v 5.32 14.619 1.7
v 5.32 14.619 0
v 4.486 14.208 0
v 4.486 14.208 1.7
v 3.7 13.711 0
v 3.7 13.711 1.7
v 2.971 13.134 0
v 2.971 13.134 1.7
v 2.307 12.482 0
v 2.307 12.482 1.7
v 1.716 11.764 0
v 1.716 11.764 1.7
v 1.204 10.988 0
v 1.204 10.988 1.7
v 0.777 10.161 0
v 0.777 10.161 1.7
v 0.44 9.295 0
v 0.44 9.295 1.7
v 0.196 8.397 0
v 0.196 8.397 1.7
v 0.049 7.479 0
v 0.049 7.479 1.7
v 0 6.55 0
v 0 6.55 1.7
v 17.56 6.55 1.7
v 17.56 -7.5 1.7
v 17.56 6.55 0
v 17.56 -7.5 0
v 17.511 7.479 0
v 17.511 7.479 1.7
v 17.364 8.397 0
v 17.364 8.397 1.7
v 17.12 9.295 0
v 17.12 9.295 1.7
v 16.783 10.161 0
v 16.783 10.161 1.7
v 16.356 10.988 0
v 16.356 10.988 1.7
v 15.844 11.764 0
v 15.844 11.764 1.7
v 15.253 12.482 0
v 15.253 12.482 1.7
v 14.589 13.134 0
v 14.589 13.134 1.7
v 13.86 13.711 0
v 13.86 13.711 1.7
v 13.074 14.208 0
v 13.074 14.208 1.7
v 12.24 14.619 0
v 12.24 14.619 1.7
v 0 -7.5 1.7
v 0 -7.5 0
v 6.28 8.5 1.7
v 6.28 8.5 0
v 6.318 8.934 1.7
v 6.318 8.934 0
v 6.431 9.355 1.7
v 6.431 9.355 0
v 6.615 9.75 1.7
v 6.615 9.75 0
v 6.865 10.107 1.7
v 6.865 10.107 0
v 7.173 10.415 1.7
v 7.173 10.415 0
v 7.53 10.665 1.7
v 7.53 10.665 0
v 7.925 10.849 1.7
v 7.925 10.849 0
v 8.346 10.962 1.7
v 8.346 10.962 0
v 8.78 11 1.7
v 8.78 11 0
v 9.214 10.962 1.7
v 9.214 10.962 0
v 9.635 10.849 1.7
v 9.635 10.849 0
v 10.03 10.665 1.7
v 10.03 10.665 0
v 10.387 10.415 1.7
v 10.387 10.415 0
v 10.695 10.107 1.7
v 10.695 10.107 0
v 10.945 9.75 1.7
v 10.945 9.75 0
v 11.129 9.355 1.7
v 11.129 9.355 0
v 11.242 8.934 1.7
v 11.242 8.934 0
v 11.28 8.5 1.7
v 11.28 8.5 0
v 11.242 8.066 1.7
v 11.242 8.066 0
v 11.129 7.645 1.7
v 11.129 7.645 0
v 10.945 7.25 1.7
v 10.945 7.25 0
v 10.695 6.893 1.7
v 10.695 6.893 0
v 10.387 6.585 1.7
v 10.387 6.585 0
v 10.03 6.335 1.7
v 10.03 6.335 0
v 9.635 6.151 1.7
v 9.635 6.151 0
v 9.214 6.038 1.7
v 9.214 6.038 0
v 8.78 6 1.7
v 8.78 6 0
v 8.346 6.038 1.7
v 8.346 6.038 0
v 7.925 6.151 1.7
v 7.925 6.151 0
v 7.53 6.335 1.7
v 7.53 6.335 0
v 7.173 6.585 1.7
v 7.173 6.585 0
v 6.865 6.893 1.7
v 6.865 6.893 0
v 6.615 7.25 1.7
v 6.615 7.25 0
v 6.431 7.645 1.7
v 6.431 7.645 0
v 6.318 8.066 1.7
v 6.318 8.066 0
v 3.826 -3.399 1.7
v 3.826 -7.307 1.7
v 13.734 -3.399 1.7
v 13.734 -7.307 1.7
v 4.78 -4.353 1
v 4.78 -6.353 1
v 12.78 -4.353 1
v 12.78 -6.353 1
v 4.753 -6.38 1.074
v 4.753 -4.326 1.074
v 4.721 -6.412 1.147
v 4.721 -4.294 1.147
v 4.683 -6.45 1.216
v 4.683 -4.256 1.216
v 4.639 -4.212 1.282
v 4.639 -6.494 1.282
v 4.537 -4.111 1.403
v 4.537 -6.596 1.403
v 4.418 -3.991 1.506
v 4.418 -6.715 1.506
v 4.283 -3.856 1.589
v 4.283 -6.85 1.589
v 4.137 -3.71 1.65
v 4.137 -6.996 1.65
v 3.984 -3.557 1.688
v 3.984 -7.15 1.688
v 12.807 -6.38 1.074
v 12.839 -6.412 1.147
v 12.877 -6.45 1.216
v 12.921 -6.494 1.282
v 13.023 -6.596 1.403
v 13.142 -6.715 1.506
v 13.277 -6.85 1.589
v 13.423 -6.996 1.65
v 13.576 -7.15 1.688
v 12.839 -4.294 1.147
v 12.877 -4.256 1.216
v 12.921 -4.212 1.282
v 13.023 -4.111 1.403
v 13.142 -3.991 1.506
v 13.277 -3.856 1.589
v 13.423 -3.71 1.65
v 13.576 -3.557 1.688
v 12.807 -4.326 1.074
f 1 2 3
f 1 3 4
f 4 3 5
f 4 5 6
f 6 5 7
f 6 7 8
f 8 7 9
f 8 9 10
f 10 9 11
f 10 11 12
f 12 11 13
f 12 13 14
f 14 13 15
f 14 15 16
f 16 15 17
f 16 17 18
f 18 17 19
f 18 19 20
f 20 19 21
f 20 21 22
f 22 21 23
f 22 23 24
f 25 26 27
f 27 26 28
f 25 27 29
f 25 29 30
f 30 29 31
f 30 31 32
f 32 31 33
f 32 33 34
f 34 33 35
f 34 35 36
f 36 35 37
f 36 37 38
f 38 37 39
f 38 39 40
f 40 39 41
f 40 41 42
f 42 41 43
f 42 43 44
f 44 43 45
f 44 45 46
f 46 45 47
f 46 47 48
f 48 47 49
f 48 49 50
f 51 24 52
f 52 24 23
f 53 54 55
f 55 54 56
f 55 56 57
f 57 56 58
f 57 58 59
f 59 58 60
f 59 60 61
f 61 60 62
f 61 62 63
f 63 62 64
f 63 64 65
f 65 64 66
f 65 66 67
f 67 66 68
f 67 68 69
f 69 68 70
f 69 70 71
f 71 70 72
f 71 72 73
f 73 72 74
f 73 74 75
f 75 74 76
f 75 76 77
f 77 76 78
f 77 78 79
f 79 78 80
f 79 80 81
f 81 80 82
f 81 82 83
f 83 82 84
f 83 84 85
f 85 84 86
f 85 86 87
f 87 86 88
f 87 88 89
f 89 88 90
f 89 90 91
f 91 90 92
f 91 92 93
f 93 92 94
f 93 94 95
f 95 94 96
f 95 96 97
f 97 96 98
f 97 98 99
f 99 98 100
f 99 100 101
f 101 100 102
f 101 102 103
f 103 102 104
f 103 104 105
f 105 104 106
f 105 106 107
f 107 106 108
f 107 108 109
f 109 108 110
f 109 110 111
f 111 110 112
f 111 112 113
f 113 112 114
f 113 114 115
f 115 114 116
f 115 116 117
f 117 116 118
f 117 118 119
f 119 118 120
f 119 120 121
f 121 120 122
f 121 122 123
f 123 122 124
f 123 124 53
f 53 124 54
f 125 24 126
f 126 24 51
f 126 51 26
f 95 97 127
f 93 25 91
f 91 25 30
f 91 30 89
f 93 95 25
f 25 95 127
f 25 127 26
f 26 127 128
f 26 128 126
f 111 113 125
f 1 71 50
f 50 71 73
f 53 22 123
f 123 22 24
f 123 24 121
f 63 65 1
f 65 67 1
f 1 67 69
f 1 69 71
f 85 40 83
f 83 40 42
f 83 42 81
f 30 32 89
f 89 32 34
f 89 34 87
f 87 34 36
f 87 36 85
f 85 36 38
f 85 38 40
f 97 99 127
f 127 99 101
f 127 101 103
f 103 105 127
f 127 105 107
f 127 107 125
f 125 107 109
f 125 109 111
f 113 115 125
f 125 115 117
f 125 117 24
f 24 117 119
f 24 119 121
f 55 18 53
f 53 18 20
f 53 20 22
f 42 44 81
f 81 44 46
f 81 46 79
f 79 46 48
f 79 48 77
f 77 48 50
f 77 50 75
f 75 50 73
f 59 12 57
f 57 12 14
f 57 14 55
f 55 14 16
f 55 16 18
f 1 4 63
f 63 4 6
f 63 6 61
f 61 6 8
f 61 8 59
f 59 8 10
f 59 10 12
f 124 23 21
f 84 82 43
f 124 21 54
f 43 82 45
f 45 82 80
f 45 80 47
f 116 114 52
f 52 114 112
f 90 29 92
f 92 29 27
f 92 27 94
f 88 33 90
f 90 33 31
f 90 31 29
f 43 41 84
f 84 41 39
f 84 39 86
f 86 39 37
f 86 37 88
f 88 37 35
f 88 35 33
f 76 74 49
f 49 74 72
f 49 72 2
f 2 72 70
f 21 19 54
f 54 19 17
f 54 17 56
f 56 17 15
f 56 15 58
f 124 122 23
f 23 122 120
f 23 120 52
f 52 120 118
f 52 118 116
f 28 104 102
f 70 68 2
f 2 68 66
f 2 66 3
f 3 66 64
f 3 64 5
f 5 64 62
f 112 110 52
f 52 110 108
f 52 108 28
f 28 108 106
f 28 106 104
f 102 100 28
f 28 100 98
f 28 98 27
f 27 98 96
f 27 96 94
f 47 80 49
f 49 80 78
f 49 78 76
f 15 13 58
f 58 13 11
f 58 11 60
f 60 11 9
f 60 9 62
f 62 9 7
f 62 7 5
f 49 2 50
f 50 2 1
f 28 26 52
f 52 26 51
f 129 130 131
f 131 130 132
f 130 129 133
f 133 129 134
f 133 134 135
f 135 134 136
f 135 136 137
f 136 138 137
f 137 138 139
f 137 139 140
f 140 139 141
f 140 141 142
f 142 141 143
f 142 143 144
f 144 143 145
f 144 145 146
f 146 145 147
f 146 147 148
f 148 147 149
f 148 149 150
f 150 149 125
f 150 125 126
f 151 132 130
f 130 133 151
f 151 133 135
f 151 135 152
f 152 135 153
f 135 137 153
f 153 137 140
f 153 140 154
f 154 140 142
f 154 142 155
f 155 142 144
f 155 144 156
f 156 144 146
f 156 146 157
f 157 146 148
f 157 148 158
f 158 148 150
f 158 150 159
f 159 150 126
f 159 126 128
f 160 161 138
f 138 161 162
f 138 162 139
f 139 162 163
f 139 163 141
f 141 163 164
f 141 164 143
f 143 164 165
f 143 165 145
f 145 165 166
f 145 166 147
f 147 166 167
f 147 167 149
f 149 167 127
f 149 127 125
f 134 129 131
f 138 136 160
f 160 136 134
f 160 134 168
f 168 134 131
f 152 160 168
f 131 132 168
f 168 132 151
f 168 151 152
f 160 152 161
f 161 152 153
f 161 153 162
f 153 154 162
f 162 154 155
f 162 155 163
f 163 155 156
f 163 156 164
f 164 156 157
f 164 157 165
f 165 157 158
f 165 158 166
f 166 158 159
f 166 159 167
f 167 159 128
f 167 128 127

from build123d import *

# Parameters (mm, degrees)
SKETCH1_R           = 2.5
BOSS_EXTRUDE1_DEPTH = 1.7
CUT_EXTRUDE4_DEPTH  = 24.372045268
SKETCH6_W           = 17.56
SKETCH6_H           = 1.7
BOSS_EXTRUDE4_DEPTH = 7.5
SKETCH9_W           = 8
SKETCH9_H           = 2
CUT_EXTRUDE2_DEPTH  = 0.7
FILLET1_R           = 1


with BuildPart() as part:
    # Sketch1 → Boss-Extrude1 (new body)
    with BuildSketch(Plane.XY):
        with BuildLine():
            Line((0, 0), (17.56, 0))
            Line((17.56, 0), (17.56, 6.55))
            ThreePointArc((17.56, 6.55), (8.78, 15.33), (0, 6.55))
            Line((0, 6.55), (0, 0))
        make_face()
        with Locations((8.78, 8.5)):
            Circle(SKETCH1_R, mode=Mode.SUBTRACT)
    extrude(amount=BOSS_EXTRUDE1_DEPTH)

    # Sketch3 → Cut-Extrude4 (cut, through all)
    with BuildSketch(Plane.XY.offset(1.7)):
        with BuildLine():
            ThreePointArc((12.24, 14.619498126), (8.78, 15.33), (5.32, 14.619498126))
            Line((5.32, 14.619498126), (12.24, 14.619498126))
        make_face()
    extrude(amount=-CUT_EXTRUDE4_DEPTH, mode=Mode.SUBTRACT)

    # Sketch6 → Boss-Extrude4 (add)
    with BuildSketch(Plane.XZ):
        with Locations((8.78, 0.85)):
            Rectangle(SKETCH6_W, SKETCH6_H)
    extrude(amount=BOSS_EXTRUDE4_DEPTH)

    # Sketch9 → Cut-Extrude2 (cut)
    with BuildSketch(Plane.XY.offset(1.7)):
        with Locations((8.78, -5.353166831)):
            Rectangle(SKETCH9_W, SKETCH9_H)
    extrude(amount=-CUT_EXTRUDE2_DEPTH, mode=Mode.SUBTRACT)

    # Fillet1
    # the kernel refuses this fillet: 1 mm, written as the material it takes off along each edge
    with BuildSketch(Plane(origin=(12.78, -4.353166831, 1.7), x_dir=(1, 0, 0), z_dir=(0, -1, 0)), Plane(origin=(4.78, -6.353166831, 1.7), x_dir=(-1, 0, 0), z_dir=(0, 1, 0))) as fillet1_piece_1:
        with BuildLine():
            CenterArc((0.953939201, -1), FILLET1_R, 90, 72.542396876)
            Line((0, -0.7), (-0.019078784, -0.694))
            ThreePointArc((-0.019078784, -0.694), (-0.02, -0.35), (-0.02, 0))
            Line((-0.02, 0), (0, 0.02))
            Line((0, 0.02), (0.953939201, 0.02))
            Line((0.953939201, 0.02), (0.953939201, 0))
        make_face()
    extrude(amount=2, mode=Mode.SUBTRACT)
    with BuildSketch(Plane(origin=(12.78, -6.353166831, 1.7), x_dir=(0, -1, 0), z_dir=(-1, 0, 0)), Plane(origin=(4.78, -4.353166831, 1.7), x_dir=(0, 1, 0), z_dir=(1, 0, 0))) as fillet1_piece_2:
        with BuildLine():
            CenterArc((0.953939201, -1), FILLET1_R, 90, 72.542396876)
            Line((0, -0.7), (-0.019078784, -0.694))
            ThreePointArc((-0.019078784, -0.694), (-0.02, -0.35), (-0.02, 0))
            Line((-0.02, 0), (0, 0.02))
            Line((0, 0.02), (0.953939201, 0.02))
            Line((0.953939201, 0.02), (0.953939201, 0))
        make_face()
    extrude(amount=8, mode=Mode.SUBTRACT)
    with BuildSketch(Plane(origin=(12.78, -1.968318828, 1.7), x_dir=(1, 0, 0), z_dir=(0, -1, 0))) as fillet1_piece_3a_section:
        with BuildLine():
            CenterArc((0.953939201, -1), FILLET1_R, 90, 72.542396876)
            Line((0, -0.7), (-0.019078784, -0.694))
            ThreePointArc((-0.019078784, -0.694), (-0.02, -0.35), (-0.02, 0))
            Line((-0.02, 0), (0, 0.02))
            Line((0, 0.02), (0.953939201, 0.02))
            Line((0.953939201, 0.02), (0.953939201, 0))
        make_face()
    fillet1_piece_3a = extrude(amount=4.384848004, mode=Mode.PRIVATE)
    fillet1_piece_3a = split(fillet1_piece_3a, bisect_by=Plane(origin=(13.007122588, -4.353166831, 1.5212182), z_dir=(0, 1, 0)), keep=Keep.TOP, mode=Mode.PRIVATE)
    with BuildSketch(Plane(origin=(4.78, -4.353166831, 1.7), x_dir=(0, 1, 0), z_dir=(1, 0, 0))) as fillet1_piece_3b_section:
        with BuildLine():
            CenterArc((0.953939201, -1), FILLET1_R, 90, 72.542396876)
            Line((0, -0.7), (-0.019078784, -0.694))
            ThreePointArc((-0.019078784, -0.694), (-0.02, -0.35), (-0.02, 0))
            Line((-0.02, 0), (0, 0.02))
            Line((0, 0.02), (0.953939201, 0.02))
            Line((0.953939201, 0.02), (0.953939201, 0))
        make_face()
    fillet1_piece_3b = extrude(amount=10.384848004, mode=Mode.PRIVATE)
    fillet1_piece_3b = split(fillet1_piece_3b, bisect_by=Plane(origin=(12.78, -4.126044244, 1.5212182), z_dir=(1, 0, 0)), keep=Keep.TOP, mode=Mode.PRIVATE)
    fillet1_piece_3 = fillet1_piece_3a & fillet1_piece_3b
    add(fillet1_piece_3, mode=Mode.SUBTRACT)
    with BuildSketch(Plane(origin=(12.78, -4.353166831, 1.7), x_dir=(1, 0, 0), z_dir=(0, -1, 0))) as fillet1_piece_4a_section:
        with BuildLine():
            CenterArc((0.953939201, -1), FILLET1_R, 90, 72.542396876)
            Line((0, -0.7), (-0.019078784, -0.694))
            ThreePointArc((-0.019078784, -0.694), (-0.02, -0.35), (-0.02, 0))
            Line((-0.02, 0), (0, 0.02))
            Line((0, 0.02), (0.953939201, 0.02))
            Line((0.953939201, 0.02), (0.953939201, 0))
        make_face()
    fillet1_piece_4a = extrude(amount=4.384848004, mode=Mode.PRIVATE)
    fillet1_piece_4a = split(fillet1_piece_4a, bisect_by=Plane(origin=(13.007122588, -6.353166831, 1.5212182), z_dir=(0, -1, 0)), keep=Keep.TOP, mode=Mode.PRIVATE)
    with BuildSketch(Plane(origin=(15.164848004, -6.353166831, 1.7), x_dir=(0, -1, 0), z_dir=(-1, 0, 0))) as fillet1_piece_4b_section:
        with BuildLine():
            CenterArc((0.953939201, -1), FILLET1_R, 90, 72.542396876)
            Line((0, -0.7), (-0.019078784, -0.694))
            ThreePointArc((-0.019078784, -0.694), (-0.02, -0.35), (-0.02, 0))
            Line((-0.02, 0), (0, 0.02))
            Line((0, 0.02), (0.953939201, 0.02))
            Line((0.953939201, 0.02), (0.953939201, 0))
        make_face()
    fillet1_piece_4b = extrude(amount=10.384848004, mode=Mode.PRIVATE)
    fillet1_piece_4b = split(fillet1_piece_4b, bisect_by=Plane(origin=(12.78, -6.580289419, 1.5212182), z_dir=(1, 0, 0)), keep=Keep.TOP, mode=Mode.PRIVATE)
    fillet1_piece_4 = fillet1_piece_4a & fillet1_piece_4b
    add(fillet1_piece_4, mode=Mode.SUBTRACT)
    with BuildSketch(Plane(origin=(4.78, -8.738014835, 1.7), x_dir=(-1, 0, 0), z_dir=(0, 1, 0))) as fillet1_piece_5a_section:
        with BuildLine():
            CenterArc((0.953939201, -1), FILLET1_R, 90, 72.542396876)
            Line((0, -0.7), (-0.019078784, -0.694))
            ThreePointArc((-0.019078784, -0.694), (-0.02, -0.35), (-0.02, 0))
            Line((-0.02, 0), (0, 0.02))
            Line((0, 0.02), (0.953939201, 0.02))
            Line((0.953939201, 0.02), (0.953939201, 0))
        make_face()
    fillet1_piece_5a = extrude(amount=4.384848004, mode=Mode.PRIVATE)
    fillet1_piece_5a = split(fillet1_piece_5a, bisect_by=Plane(origin=(4.552877412, -6.353166831, 1.5212182), z_dir=(0, -1, 0)), keep=Keep.TOP, mode=Mode.PRIVATE)
    with BuildSketch(Plane(origin=(12.78, -6.353166831, 1.7), x_dir=(0, -1, 0), z_dir=(-1, 0, 0))) as fillet1_piece_5b_section:
        with BuildLine():
            CenterArc((0.953939201, -1), FILLET1_R, 90, 72.542396876)
            Line((0, -0.7), (-0.019078784, -0.694))
            ThreePointArc((-0.019078784, -0.694), (-0.02, -0.35), (-0.02, 0))
            Line((-0.02, 0), (0, 0.02))
            Line((0, 0.02), (0.953939201, 0.02))
            Line((0.953939201, 0.02), (0.953939201, 0))
        make_face()
    fillet1_piece_5b = extrude(amount=10.384848004, mode=Mode.PRIVATE)
    fillet1_piece_5b = split(fillet1_piece_5b, bisect_by=Plane(origin=(4.78, -6.580289419, 1.5212182), z_dir=(-1, 0, 0)), keep=Keep.TOP, mode=Mode.PRIVATE)
    fillet1_piece_5 = fillet1_piece_5a & fillet1_piece_5b
    add(fillet1_piece_5, mode=Mode.SUBTRACT)
    with BuildSketch(Plane(origin=(2.395151996, -4.353166831, 1.7), x_dir=(0, 1, 0), z_dir=(1, 0, 0))) as fillet1_piece_6a_section:
        with BuildLine():
            CenterArc((0.953939201, -1), FILLET1_R, 90, 72.542396876)
            Line((0, -0.7), (-0.019078784, -0.694))
            ThreePointArc((-0.019078784, -0.694), (-0.02, -0.35), (-0.02, 0))
            Line((-0.02, 0), (0, 0.02))
            Line((0, 0.02), (0.953939201, 0.02))
            Line((0.953939201, 0.02), (0.953939201, 0))
        make_face()
    fillet1_piece_6a = extrude(amount=10.384848004, mode=Mode.PRIVATE)
    fillet1_piece_6a = split(fillet1_piece_6a, bisect_by=Plane(origin=(4.78, -4.126044244, 1.5212182), z_dir=(-1, 0, 0)), keep=Keep.TOP, mode=Mode.PRIVATE)
    with BuildSketch(Plane(origin=(4.78, -6.353166831, 1.7), x_dir=(-1, 0, 0), z_dir=(0, 1, 0))) as fillet1_piece_6b_section:
        with BuildLine():
            CenterArc((0.953939201, -1), FILLET1_R, 90, 72.542396876)
            Line((0, -0.7), (-0.019078784, -0.694))
            ThreePointArc((-0.019078784, -0.694), (-0.02, -0.35), (-0.02, 0))
            Line((-0.02, 0), (0, 0.02))
            Line((0, 0.02), (0.953939201, 0.02))
            Line((0.953939201, 0.02), (0.953939201, 0))
        make_face()
    fillet1_piece_6b = extrude(amount=4.384848004, mode=Mode.PRIVATE)
    fillet1_piece_6b = split(fillet1_piece_6b, bisect_by=Plane(origin=(4.552877412, -4.353166831, 1.5212182), z_dir=(0, 1, 0)), keep=Keep.TOP, mode=Mode.PRIVATE)
    fillet1_piece_6 = fillet1_piece_6a & fillet1_piece_6b
    add(fillet1_piece_6, mode=Mode.SUBTRACT)


solid = part.part
